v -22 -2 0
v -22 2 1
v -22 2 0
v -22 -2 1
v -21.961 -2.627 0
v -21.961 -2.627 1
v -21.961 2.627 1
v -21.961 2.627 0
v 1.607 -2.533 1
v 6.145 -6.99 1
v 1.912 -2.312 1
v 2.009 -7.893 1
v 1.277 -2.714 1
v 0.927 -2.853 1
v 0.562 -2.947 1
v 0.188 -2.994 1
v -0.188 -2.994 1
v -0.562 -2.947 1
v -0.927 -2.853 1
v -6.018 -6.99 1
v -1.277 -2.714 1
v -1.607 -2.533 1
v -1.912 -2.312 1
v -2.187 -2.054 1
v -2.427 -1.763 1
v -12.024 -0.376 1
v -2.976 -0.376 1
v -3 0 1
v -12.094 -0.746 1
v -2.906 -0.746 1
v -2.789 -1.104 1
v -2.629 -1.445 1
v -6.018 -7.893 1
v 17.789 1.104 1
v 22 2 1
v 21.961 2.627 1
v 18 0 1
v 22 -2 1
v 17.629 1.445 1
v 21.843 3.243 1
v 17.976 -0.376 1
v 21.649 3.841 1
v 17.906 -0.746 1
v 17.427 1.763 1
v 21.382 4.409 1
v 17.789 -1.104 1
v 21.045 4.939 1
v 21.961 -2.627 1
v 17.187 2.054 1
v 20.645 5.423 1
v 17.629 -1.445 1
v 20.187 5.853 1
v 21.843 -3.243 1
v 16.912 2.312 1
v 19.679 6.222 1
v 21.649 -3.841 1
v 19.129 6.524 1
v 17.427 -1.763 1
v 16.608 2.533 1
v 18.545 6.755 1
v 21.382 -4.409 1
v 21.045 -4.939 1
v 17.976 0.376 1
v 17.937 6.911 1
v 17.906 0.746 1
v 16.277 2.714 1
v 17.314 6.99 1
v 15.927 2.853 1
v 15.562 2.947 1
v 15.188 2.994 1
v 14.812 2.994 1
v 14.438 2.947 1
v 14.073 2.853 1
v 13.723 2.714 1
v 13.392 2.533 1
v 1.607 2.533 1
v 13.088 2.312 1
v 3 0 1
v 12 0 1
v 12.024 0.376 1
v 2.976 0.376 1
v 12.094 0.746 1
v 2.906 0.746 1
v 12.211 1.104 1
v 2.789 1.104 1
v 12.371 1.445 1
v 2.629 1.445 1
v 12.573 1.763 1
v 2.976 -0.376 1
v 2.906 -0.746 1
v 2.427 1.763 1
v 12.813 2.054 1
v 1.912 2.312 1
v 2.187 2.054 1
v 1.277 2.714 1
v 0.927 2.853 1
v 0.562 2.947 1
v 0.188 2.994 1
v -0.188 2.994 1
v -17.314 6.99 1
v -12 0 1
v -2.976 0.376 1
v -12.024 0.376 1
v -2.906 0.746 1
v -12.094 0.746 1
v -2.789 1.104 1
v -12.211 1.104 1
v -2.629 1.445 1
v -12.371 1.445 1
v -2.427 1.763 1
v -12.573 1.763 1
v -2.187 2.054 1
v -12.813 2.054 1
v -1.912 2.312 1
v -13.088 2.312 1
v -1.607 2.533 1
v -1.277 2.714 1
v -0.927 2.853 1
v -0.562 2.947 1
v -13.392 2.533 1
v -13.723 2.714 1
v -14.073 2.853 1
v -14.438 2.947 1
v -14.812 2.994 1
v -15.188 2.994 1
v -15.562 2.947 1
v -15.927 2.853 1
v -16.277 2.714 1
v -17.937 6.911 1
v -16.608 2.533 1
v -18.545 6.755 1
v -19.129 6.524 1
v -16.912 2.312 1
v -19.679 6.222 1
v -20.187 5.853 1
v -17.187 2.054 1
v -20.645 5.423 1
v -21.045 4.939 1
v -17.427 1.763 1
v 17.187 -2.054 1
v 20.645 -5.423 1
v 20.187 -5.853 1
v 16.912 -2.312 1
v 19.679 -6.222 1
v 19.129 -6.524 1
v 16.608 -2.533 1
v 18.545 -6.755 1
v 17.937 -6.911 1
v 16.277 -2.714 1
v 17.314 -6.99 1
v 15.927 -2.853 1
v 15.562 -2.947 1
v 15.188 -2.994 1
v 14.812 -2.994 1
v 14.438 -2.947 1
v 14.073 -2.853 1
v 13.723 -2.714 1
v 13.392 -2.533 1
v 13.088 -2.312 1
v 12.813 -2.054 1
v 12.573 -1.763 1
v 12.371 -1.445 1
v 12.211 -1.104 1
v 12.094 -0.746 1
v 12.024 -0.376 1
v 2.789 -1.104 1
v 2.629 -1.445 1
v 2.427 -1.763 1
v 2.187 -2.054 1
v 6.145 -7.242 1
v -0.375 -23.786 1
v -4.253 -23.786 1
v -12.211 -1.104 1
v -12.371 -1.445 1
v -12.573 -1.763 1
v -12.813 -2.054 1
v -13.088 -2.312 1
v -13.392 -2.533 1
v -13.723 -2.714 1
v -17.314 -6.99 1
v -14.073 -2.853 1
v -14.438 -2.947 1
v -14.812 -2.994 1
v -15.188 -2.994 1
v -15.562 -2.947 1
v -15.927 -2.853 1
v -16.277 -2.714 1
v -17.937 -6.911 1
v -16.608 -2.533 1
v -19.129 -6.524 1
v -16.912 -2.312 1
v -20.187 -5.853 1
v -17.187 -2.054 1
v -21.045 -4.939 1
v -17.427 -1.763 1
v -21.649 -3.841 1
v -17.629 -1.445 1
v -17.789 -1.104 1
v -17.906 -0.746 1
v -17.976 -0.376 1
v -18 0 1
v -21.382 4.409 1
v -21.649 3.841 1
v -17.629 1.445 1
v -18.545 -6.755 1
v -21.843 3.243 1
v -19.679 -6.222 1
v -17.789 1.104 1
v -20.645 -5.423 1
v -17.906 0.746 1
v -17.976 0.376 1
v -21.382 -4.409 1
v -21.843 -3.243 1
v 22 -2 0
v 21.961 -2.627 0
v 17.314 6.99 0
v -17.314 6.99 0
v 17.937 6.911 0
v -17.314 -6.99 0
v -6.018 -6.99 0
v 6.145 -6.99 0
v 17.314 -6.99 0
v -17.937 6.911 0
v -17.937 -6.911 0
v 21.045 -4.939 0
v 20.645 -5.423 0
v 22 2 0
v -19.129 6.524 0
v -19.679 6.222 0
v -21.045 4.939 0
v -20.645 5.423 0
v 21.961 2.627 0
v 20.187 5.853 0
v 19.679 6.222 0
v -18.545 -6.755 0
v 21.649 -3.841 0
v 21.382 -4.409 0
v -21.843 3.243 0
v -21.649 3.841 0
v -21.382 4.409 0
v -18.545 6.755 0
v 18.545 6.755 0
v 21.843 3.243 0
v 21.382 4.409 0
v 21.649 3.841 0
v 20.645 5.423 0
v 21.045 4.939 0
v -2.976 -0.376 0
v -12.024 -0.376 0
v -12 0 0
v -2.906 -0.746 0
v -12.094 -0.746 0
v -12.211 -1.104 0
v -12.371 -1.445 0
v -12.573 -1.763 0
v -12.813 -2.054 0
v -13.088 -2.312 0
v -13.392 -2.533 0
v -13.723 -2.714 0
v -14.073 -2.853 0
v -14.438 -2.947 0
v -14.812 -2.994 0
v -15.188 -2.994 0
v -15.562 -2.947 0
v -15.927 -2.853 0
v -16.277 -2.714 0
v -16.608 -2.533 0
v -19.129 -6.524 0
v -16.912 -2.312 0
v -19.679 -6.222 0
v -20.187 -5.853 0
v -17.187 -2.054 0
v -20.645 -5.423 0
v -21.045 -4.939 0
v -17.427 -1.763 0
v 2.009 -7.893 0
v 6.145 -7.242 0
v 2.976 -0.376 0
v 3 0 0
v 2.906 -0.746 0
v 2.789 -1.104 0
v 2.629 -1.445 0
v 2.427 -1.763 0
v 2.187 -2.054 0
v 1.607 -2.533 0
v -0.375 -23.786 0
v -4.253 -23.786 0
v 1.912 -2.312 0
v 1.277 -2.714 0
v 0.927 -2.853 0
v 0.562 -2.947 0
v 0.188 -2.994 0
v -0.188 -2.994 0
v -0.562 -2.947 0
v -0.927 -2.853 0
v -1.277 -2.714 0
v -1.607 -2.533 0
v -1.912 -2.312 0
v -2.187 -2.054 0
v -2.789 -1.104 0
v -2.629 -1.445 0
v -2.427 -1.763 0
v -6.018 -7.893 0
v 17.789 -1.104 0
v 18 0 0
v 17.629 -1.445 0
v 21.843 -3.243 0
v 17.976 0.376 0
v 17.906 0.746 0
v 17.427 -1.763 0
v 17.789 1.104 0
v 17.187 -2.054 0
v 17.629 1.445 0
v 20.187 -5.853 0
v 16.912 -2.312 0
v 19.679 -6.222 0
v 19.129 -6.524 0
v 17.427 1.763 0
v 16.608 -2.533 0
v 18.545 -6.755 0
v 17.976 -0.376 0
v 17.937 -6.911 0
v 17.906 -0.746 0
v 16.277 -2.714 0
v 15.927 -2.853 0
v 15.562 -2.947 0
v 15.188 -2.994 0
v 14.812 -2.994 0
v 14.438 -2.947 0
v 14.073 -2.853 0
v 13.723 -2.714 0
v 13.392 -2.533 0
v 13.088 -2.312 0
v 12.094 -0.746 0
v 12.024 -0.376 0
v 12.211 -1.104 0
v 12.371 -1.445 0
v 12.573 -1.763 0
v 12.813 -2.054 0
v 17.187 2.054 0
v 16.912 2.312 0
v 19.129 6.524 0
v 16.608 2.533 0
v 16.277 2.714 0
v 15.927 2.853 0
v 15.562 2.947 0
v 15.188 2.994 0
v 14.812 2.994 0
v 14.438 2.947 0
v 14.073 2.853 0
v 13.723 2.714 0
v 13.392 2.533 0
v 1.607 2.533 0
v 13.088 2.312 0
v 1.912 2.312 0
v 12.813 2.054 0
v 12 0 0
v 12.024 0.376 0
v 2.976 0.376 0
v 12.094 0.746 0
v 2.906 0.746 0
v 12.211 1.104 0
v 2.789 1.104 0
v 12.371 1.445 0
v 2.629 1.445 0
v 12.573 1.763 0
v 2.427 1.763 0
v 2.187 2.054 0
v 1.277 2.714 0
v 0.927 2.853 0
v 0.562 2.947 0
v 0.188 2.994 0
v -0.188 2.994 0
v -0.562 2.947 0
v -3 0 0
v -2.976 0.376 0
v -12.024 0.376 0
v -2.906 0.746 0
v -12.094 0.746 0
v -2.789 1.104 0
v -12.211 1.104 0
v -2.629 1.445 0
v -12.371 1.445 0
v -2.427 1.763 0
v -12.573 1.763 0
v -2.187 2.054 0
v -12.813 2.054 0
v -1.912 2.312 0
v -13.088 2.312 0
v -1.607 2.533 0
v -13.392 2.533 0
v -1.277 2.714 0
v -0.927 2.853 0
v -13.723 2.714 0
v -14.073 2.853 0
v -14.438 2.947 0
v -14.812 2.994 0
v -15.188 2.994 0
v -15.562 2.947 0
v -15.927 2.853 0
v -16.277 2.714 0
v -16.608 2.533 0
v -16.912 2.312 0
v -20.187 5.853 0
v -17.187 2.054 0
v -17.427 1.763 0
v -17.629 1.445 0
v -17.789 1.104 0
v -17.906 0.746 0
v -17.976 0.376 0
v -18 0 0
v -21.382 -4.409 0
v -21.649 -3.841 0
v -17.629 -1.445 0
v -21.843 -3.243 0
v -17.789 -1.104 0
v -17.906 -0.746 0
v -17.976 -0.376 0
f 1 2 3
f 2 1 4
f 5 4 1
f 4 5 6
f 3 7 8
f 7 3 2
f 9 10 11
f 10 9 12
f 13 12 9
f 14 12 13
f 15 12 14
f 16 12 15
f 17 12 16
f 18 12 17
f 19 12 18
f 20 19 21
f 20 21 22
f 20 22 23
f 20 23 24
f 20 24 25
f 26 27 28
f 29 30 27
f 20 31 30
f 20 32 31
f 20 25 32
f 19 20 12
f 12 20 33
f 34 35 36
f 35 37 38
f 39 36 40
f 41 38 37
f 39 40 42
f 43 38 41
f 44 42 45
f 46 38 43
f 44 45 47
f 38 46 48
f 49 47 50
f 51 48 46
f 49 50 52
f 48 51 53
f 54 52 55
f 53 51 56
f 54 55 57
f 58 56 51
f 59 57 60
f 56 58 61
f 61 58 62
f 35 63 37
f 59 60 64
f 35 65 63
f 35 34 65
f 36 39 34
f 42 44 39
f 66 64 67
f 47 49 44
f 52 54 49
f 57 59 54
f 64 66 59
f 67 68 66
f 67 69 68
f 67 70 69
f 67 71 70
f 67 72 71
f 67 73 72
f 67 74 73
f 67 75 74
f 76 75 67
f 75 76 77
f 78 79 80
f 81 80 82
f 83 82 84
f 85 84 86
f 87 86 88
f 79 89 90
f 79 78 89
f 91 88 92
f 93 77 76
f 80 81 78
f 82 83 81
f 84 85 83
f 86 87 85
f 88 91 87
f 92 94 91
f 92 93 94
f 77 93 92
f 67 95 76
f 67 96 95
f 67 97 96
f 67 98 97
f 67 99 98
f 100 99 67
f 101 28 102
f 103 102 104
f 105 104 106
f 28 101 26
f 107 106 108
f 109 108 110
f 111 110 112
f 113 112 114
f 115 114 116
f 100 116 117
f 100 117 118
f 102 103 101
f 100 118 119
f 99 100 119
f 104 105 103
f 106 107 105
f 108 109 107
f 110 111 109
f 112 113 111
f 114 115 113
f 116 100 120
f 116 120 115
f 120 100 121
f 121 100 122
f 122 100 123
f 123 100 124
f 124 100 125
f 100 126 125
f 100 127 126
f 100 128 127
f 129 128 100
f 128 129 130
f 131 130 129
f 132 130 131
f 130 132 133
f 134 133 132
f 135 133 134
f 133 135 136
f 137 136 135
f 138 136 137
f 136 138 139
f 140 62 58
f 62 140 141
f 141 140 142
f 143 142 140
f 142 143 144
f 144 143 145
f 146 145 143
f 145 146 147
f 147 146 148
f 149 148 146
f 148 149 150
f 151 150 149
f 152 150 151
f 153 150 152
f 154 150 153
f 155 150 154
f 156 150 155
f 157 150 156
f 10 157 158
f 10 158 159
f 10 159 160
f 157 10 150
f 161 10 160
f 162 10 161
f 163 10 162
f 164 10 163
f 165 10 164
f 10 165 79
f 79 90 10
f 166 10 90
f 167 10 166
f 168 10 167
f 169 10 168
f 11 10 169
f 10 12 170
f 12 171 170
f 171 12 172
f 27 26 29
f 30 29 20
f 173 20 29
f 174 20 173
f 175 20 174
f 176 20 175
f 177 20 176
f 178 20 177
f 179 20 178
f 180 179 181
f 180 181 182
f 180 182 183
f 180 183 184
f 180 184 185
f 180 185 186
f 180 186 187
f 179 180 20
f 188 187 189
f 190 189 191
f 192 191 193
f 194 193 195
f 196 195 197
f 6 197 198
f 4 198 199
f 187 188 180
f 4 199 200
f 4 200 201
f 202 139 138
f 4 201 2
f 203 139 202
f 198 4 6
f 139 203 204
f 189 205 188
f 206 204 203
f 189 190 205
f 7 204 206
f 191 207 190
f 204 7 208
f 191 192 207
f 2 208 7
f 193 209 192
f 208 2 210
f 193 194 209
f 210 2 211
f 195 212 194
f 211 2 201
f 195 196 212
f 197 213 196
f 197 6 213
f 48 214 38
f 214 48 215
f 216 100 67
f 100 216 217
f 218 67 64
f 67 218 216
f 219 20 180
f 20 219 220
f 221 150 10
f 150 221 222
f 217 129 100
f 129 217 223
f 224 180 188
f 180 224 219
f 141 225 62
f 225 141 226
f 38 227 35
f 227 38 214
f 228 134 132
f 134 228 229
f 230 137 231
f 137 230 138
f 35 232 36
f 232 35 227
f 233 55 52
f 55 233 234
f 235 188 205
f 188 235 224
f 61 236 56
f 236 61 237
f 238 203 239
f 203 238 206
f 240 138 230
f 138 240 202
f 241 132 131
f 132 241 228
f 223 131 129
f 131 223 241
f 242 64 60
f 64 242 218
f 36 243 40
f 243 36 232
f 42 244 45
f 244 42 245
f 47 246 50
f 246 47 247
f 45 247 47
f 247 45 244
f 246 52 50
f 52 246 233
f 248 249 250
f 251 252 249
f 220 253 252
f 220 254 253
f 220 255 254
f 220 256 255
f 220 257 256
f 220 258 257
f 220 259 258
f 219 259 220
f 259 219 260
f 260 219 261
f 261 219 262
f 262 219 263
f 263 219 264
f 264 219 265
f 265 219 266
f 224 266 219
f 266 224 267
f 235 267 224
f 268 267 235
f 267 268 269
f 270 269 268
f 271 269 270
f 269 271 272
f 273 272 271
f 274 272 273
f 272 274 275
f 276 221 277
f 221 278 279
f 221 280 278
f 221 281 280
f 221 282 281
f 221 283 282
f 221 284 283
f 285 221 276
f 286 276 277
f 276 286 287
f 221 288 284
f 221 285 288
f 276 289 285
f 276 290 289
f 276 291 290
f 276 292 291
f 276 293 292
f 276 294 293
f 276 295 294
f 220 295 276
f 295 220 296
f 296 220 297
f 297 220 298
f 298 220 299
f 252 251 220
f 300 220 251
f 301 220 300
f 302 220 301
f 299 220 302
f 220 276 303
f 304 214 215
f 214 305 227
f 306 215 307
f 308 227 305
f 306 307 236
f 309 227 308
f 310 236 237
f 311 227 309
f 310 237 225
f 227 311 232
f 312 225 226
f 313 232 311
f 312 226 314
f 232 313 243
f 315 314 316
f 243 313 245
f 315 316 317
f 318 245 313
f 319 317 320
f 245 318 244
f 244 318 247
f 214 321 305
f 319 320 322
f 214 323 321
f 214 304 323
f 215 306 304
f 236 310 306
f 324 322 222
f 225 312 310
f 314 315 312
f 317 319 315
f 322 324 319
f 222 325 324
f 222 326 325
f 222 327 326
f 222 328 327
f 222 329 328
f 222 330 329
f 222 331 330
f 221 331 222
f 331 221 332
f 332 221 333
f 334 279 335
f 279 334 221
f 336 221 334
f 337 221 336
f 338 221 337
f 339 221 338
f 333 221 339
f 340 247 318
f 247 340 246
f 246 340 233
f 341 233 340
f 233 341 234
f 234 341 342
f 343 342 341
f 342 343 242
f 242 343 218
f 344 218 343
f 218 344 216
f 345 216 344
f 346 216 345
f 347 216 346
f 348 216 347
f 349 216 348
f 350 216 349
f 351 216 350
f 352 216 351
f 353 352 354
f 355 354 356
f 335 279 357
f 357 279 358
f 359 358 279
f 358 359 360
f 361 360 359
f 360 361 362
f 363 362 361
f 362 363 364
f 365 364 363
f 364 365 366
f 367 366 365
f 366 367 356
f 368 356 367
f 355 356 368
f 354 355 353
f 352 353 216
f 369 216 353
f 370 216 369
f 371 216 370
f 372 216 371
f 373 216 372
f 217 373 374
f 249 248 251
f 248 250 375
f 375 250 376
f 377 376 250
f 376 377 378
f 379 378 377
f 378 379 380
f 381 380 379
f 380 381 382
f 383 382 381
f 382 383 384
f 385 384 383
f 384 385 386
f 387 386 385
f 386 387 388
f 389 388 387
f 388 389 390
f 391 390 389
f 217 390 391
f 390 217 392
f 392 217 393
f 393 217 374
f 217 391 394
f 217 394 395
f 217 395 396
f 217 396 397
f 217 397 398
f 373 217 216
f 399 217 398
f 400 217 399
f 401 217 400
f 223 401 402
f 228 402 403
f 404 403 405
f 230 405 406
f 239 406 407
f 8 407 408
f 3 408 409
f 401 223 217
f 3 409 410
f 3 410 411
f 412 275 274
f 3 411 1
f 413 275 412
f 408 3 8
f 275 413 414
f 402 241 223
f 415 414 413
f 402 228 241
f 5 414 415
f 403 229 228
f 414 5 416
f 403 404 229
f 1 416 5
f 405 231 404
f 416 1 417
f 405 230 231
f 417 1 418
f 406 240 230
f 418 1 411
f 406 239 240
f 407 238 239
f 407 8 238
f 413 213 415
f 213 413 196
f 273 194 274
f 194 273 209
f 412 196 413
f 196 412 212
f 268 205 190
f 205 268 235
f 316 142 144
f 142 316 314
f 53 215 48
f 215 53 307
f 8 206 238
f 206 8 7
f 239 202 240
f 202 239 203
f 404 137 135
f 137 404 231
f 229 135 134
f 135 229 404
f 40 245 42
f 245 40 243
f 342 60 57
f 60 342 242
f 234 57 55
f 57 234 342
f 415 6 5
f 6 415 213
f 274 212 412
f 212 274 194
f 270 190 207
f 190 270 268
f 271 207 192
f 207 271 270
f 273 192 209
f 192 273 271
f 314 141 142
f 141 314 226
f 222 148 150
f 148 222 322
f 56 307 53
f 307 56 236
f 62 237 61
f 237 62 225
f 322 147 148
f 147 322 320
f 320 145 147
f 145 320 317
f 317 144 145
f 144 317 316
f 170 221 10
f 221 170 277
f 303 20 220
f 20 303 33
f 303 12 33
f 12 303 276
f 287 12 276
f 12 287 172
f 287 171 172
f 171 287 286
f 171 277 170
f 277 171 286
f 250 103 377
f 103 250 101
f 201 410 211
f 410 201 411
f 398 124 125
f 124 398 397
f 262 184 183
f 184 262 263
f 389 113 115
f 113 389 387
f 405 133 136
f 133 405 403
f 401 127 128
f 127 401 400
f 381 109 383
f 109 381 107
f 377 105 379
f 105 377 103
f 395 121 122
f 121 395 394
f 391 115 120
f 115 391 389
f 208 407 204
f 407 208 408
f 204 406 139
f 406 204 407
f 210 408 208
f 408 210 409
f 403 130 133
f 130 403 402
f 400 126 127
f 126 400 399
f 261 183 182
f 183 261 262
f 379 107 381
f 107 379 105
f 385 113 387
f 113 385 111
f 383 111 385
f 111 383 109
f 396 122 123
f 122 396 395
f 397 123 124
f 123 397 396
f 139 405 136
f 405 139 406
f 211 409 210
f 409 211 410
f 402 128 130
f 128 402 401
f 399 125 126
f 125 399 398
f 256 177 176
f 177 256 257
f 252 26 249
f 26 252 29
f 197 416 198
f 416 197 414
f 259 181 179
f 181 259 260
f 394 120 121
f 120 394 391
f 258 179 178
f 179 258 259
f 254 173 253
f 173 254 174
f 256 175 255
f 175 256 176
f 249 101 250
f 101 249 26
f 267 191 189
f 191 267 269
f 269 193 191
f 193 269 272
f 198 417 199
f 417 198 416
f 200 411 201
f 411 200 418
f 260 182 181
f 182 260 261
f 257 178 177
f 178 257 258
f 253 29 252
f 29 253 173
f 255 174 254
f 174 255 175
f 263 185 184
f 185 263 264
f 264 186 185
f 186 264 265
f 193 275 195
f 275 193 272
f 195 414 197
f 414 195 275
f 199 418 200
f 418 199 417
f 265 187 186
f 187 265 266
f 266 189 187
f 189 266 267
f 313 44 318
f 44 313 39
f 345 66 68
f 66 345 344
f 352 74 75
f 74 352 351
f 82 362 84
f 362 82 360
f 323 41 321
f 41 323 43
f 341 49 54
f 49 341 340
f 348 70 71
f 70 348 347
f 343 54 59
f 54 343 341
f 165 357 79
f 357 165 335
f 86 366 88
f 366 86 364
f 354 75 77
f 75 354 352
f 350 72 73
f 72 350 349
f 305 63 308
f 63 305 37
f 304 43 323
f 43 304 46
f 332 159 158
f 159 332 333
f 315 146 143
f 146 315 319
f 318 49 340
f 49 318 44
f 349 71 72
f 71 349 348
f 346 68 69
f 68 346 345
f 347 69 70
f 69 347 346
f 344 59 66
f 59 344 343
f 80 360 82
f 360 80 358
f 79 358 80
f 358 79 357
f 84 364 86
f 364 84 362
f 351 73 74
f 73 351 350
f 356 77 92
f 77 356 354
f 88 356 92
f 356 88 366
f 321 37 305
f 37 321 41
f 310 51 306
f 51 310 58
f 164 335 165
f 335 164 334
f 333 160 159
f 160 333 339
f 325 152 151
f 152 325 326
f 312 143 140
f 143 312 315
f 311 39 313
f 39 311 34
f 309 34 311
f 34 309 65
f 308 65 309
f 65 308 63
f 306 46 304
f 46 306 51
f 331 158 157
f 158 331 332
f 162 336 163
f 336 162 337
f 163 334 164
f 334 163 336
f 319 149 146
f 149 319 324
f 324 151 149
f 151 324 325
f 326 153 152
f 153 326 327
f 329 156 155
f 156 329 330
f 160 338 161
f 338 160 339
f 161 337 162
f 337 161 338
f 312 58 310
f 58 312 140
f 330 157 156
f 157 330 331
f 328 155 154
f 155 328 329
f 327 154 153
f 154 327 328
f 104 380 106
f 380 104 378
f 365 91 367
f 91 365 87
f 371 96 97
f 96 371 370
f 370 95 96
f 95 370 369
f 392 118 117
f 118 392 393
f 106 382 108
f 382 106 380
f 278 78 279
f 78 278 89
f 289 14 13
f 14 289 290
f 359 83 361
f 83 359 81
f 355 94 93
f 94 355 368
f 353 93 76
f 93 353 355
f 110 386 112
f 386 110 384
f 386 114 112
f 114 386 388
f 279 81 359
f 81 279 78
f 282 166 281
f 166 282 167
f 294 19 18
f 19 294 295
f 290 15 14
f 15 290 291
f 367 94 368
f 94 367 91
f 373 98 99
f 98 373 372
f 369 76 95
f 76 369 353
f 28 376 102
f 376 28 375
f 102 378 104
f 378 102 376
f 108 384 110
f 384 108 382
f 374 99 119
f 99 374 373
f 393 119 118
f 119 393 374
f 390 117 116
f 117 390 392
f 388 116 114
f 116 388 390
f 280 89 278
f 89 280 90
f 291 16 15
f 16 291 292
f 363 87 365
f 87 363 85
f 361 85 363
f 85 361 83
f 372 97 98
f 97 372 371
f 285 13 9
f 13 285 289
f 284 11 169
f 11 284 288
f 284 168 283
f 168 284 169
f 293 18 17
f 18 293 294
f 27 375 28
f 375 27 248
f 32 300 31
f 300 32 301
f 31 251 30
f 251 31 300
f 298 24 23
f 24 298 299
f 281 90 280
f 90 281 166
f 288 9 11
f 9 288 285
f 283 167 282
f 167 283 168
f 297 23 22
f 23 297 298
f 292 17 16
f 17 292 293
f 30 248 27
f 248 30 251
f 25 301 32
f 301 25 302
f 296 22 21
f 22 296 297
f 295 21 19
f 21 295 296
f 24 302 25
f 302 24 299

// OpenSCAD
$fn = 50;


difference() {
	union() {
		translate(v = [0, 0, 0]) {
			rotate(a = [0, 0, 0]) {
				hull() {
					translate(v = [-17.0000000000, 2.0000000000, 0]) {
						rotate(a = [0, 0, 0]) {
							translate(v = [0, 0, 0]) {
								rotate(a = [0, 0, 0]) {
									cylinder(h = 1, r = 5);
								}
							}
						}
					}
					translate(v = [17.0000000000, 2.0000000000, 0]) {
						rotate(a = [0, 0, 0]) {
							translate(v = [0, 0, 0]) {
								rotate(a = [0, 0, 0]) {
									cylinder(h = 1, r = 5);
								}
							}
						}
					}
					translate(v = [-17.0000000000, -2.0000000000, 0]) {
						rotate(a = [0, 0, 0]) {
							translate(v = [0, 0, 0]) {
								rotate(a = [0, 0, 0]) {
									cylinder(h = 1, r = 5);
								}
							}
						}
					}
					translate(v = [17.0000000000, -2.0000000000, 0]) {
						rotate(a = [0, 0, 0]) {
							translate(v = [0, 0, 0]) {
								rotate(a = [0, 0, 0]) {
									cylinder(h = 1, r = 5);
								}
							}
						}
					}
				}
			}
		}
		translate(v = [0, -5, 0]) {
			rotate(a = [0, 0, 0]) {
				linear_extrude(height = 1) {
					text(font = "DejaVu Sans Mono:style=Bold", halign = "center", size = 19.0000000000, text = "7", valign = "top");
				}
			}
		}
	}
	union() {
		translate(v = [-15.0000000000, 0.0000000000, -125.0000000000]) {
			rotate(a = [0, 0, 0]) {
				cylinder(h = 250, r = 3.0000000000);
			}
		}
		translate(v = [15.0000000000, 0.0000000000, -125.0000000000]) {
			rotate(a = [0, 0, 0]) {
				cylinder(h = 250, r = 3.0000000000);
			}
		}
		translate(v = [15.0000000000, 0.0000000000, -125.0000000000]) {
			rotate(a = [0, 0, 0]) {
				cylinder(h = 250, r = 3.0000000000);
			}
		}
		translate(v = [0, 0, -125.0000000000]) {
			rotate(a = [0, 0, 0]) {
				cylinder(h = 250, r = 3.0000000000);
			}
		}
	}
}
